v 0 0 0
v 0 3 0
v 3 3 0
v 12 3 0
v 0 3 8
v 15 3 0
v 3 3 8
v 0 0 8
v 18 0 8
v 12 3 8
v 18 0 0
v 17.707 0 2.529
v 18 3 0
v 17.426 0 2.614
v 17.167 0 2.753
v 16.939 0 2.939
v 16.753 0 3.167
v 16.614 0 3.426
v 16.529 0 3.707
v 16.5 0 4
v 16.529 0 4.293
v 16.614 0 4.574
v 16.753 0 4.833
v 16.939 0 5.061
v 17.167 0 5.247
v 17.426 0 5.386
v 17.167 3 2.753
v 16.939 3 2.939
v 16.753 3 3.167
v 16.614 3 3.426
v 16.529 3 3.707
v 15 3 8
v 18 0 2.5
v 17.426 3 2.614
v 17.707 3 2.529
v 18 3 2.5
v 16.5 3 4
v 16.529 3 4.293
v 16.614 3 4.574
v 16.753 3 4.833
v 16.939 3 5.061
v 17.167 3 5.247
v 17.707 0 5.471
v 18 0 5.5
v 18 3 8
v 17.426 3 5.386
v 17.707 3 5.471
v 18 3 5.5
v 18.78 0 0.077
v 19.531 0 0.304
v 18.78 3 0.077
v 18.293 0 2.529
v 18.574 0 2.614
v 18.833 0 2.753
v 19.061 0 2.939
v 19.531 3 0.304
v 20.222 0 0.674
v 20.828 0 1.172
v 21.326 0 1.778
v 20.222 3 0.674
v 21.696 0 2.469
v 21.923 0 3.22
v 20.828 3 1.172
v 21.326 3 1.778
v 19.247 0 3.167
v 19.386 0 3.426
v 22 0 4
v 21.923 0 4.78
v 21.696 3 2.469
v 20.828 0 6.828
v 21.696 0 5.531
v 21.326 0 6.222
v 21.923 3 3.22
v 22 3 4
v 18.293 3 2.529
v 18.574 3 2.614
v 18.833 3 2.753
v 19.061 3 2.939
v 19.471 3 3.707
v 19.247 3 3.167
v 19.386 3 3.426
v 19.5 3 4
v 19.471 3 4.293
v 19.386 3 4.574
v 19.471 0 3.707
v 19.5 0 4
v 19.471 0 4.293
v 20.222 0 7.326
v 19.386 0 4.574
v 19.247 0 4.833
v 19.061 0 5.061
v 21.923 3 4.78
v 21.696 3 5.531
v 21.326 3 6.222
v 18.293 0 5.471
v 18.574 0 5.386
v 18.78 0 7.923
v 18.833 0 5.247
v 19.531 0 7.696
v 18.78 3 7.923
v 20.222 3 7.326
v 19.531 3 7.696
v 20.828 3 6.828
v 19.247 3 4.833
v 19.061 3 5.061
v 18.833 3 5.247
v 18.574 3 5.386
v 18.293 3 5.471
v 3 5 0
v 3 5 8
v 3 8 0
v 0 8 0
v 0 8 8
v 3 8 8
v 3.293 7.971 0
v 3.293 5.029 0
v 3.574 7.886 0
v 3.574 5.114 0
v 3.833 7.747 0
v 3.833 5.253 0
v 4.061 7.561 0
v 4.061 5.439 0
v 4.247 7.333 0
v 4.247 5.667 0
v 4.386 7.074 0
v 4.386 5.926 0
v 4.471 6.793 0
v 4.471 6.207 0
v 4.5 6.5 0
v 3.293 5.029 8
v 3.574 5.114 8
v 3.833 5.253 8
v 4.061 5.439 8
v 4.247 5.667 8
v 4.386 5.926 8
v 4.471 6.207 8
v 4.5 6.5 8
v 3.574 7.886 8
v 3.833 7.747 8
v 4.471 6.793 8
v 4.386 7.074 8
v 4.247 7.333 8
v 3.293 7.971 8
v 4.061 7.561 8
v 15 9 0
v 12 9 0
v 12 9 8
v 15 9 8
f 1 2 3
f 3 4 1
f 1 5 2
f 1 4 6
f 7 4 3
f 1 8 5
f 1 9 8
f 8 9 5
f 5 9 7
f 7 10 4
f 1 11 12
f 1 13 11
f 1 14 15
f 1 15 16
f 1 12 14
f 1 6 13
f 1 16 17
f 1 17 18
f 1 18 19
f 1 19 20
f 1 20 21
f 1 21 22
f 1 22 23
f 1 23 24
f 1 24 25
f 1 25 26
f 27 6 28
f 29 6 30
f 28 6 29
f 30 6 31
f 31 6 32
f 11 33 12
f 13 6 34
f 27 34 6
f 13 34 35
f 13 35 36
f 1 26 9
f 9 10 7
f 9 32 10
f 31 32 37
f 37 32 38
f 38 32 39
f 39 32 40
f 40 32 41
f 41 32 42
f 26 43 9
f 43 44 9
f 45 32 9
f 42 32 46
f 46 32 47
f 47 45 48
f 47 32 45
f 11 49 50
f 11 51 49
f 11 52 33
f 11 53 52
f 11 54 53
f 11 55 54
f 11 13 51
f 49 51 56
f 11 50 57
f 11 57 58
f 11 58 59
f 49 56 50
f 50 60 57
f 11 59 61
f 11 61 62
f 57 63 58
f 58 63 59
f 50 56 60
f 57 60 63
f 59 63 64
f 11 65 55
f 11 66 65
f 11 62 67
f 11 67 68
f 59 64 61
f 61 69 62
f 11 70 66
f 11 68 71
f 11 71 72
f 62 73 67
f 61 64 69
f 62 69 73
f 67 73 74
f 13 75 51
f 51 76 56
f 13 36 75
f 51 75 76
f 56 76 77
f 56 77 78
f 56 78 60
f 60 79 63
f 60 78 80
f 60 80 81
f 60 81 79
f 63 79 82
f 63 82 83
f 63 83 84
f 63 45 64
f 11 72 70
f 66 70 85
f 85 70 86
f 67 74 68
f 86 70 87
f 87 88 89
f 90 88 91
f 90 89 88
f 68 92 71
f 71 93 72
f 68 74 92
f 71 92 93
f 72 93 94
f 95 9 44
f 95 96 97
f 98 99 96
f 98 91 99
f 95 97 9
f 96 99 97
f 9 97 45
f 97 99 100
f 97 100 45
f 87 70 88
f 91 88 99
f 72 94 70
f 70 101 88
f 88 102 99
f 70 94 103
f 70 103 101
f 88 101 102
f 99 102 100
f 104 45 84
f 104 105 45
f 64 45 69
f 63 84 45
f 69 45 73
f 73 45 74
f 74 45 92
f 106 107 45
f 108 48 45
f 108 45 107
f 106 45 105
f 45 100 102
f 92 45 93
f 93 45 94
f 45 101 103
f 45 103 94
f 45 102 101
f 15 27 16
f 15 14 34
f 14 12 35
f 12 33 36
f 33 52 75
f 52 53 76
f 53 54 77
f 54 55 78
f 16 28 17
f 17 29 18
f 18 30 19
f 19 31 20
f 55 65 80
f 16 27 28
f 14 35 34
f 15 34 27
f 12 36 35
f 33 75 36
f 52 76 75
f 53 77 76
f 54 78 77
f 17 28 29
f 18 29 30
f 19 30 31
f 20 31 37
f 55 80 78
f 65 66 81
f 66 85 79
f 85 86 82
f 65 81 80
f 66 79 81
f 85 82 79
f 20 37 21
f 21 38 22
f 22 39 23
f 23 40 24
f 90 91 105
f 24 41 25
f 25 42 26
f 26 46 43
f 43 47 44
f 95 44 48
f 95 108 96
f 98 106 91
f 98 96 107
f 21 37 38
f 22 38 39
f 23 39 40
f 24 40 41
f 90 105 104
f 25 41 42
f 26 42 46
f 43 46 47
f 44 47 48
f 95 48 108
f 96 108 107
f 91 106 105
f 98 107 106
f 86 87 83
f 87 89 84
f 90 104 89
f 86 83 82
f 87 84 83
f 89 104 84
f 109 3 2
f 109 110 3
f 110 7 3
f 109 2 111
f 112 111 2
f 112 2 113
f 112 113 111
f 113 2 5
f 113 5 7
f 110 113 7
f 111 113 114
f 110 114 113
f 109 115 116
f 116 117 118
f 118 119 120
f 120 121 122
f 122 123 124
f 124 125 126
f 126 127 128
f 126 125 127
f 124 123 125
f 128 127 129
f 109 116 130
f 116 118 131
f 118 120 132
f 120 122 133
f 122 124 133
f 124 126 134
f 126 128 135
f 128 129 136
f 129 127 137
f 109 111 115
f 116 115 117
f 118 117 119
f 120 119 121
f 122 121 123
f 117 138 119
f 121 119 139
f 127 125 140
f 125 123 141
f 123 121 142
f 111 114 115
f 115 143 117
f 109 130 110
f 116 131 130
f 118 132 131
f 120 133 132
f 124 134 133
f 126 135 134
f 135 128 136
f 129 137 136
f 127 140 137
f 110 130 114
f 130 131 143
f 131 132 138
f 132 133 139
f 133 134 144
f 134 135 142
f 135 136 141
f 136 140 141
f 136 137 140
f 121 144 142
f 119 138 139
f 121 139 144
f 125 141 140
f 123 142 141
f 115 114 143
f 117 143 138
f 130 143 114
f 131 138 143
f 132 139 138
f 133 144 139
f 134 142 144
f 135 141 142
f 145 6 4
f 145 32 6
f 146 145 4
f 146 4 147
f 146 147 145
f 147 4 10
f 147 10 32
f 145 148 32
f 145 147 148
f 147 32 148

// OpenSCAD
// Make a clip to allow supporting a shelf with string or fishing line.

$fn=32;
t = 3;
h = 8;
l = 5;
lip_h = 9; // height of lip
gap = 2; // Looks like 2mm thick metal
o = t*2+lip_h+3;


difference() {
    union() {
        cube([o, t, h]);
        translate([o, 0, h/2])
            rotate([-90,0,0]) cylinder(h=t, r=h/2);
    }
    translate([o, -0.01, h/2])
        rotate([-90,0,0]) cylinder(h=t+0.1, r=1.5);
}
    
translate([0, t, 0]) {
    cube([t, t+gap, h]);
    translate([t, gap+t/2, 0])
        cylinder(h=h, r=t/2);
    translate([t+lip_h, 0, 0]) cube([t, 6, h]);
}
